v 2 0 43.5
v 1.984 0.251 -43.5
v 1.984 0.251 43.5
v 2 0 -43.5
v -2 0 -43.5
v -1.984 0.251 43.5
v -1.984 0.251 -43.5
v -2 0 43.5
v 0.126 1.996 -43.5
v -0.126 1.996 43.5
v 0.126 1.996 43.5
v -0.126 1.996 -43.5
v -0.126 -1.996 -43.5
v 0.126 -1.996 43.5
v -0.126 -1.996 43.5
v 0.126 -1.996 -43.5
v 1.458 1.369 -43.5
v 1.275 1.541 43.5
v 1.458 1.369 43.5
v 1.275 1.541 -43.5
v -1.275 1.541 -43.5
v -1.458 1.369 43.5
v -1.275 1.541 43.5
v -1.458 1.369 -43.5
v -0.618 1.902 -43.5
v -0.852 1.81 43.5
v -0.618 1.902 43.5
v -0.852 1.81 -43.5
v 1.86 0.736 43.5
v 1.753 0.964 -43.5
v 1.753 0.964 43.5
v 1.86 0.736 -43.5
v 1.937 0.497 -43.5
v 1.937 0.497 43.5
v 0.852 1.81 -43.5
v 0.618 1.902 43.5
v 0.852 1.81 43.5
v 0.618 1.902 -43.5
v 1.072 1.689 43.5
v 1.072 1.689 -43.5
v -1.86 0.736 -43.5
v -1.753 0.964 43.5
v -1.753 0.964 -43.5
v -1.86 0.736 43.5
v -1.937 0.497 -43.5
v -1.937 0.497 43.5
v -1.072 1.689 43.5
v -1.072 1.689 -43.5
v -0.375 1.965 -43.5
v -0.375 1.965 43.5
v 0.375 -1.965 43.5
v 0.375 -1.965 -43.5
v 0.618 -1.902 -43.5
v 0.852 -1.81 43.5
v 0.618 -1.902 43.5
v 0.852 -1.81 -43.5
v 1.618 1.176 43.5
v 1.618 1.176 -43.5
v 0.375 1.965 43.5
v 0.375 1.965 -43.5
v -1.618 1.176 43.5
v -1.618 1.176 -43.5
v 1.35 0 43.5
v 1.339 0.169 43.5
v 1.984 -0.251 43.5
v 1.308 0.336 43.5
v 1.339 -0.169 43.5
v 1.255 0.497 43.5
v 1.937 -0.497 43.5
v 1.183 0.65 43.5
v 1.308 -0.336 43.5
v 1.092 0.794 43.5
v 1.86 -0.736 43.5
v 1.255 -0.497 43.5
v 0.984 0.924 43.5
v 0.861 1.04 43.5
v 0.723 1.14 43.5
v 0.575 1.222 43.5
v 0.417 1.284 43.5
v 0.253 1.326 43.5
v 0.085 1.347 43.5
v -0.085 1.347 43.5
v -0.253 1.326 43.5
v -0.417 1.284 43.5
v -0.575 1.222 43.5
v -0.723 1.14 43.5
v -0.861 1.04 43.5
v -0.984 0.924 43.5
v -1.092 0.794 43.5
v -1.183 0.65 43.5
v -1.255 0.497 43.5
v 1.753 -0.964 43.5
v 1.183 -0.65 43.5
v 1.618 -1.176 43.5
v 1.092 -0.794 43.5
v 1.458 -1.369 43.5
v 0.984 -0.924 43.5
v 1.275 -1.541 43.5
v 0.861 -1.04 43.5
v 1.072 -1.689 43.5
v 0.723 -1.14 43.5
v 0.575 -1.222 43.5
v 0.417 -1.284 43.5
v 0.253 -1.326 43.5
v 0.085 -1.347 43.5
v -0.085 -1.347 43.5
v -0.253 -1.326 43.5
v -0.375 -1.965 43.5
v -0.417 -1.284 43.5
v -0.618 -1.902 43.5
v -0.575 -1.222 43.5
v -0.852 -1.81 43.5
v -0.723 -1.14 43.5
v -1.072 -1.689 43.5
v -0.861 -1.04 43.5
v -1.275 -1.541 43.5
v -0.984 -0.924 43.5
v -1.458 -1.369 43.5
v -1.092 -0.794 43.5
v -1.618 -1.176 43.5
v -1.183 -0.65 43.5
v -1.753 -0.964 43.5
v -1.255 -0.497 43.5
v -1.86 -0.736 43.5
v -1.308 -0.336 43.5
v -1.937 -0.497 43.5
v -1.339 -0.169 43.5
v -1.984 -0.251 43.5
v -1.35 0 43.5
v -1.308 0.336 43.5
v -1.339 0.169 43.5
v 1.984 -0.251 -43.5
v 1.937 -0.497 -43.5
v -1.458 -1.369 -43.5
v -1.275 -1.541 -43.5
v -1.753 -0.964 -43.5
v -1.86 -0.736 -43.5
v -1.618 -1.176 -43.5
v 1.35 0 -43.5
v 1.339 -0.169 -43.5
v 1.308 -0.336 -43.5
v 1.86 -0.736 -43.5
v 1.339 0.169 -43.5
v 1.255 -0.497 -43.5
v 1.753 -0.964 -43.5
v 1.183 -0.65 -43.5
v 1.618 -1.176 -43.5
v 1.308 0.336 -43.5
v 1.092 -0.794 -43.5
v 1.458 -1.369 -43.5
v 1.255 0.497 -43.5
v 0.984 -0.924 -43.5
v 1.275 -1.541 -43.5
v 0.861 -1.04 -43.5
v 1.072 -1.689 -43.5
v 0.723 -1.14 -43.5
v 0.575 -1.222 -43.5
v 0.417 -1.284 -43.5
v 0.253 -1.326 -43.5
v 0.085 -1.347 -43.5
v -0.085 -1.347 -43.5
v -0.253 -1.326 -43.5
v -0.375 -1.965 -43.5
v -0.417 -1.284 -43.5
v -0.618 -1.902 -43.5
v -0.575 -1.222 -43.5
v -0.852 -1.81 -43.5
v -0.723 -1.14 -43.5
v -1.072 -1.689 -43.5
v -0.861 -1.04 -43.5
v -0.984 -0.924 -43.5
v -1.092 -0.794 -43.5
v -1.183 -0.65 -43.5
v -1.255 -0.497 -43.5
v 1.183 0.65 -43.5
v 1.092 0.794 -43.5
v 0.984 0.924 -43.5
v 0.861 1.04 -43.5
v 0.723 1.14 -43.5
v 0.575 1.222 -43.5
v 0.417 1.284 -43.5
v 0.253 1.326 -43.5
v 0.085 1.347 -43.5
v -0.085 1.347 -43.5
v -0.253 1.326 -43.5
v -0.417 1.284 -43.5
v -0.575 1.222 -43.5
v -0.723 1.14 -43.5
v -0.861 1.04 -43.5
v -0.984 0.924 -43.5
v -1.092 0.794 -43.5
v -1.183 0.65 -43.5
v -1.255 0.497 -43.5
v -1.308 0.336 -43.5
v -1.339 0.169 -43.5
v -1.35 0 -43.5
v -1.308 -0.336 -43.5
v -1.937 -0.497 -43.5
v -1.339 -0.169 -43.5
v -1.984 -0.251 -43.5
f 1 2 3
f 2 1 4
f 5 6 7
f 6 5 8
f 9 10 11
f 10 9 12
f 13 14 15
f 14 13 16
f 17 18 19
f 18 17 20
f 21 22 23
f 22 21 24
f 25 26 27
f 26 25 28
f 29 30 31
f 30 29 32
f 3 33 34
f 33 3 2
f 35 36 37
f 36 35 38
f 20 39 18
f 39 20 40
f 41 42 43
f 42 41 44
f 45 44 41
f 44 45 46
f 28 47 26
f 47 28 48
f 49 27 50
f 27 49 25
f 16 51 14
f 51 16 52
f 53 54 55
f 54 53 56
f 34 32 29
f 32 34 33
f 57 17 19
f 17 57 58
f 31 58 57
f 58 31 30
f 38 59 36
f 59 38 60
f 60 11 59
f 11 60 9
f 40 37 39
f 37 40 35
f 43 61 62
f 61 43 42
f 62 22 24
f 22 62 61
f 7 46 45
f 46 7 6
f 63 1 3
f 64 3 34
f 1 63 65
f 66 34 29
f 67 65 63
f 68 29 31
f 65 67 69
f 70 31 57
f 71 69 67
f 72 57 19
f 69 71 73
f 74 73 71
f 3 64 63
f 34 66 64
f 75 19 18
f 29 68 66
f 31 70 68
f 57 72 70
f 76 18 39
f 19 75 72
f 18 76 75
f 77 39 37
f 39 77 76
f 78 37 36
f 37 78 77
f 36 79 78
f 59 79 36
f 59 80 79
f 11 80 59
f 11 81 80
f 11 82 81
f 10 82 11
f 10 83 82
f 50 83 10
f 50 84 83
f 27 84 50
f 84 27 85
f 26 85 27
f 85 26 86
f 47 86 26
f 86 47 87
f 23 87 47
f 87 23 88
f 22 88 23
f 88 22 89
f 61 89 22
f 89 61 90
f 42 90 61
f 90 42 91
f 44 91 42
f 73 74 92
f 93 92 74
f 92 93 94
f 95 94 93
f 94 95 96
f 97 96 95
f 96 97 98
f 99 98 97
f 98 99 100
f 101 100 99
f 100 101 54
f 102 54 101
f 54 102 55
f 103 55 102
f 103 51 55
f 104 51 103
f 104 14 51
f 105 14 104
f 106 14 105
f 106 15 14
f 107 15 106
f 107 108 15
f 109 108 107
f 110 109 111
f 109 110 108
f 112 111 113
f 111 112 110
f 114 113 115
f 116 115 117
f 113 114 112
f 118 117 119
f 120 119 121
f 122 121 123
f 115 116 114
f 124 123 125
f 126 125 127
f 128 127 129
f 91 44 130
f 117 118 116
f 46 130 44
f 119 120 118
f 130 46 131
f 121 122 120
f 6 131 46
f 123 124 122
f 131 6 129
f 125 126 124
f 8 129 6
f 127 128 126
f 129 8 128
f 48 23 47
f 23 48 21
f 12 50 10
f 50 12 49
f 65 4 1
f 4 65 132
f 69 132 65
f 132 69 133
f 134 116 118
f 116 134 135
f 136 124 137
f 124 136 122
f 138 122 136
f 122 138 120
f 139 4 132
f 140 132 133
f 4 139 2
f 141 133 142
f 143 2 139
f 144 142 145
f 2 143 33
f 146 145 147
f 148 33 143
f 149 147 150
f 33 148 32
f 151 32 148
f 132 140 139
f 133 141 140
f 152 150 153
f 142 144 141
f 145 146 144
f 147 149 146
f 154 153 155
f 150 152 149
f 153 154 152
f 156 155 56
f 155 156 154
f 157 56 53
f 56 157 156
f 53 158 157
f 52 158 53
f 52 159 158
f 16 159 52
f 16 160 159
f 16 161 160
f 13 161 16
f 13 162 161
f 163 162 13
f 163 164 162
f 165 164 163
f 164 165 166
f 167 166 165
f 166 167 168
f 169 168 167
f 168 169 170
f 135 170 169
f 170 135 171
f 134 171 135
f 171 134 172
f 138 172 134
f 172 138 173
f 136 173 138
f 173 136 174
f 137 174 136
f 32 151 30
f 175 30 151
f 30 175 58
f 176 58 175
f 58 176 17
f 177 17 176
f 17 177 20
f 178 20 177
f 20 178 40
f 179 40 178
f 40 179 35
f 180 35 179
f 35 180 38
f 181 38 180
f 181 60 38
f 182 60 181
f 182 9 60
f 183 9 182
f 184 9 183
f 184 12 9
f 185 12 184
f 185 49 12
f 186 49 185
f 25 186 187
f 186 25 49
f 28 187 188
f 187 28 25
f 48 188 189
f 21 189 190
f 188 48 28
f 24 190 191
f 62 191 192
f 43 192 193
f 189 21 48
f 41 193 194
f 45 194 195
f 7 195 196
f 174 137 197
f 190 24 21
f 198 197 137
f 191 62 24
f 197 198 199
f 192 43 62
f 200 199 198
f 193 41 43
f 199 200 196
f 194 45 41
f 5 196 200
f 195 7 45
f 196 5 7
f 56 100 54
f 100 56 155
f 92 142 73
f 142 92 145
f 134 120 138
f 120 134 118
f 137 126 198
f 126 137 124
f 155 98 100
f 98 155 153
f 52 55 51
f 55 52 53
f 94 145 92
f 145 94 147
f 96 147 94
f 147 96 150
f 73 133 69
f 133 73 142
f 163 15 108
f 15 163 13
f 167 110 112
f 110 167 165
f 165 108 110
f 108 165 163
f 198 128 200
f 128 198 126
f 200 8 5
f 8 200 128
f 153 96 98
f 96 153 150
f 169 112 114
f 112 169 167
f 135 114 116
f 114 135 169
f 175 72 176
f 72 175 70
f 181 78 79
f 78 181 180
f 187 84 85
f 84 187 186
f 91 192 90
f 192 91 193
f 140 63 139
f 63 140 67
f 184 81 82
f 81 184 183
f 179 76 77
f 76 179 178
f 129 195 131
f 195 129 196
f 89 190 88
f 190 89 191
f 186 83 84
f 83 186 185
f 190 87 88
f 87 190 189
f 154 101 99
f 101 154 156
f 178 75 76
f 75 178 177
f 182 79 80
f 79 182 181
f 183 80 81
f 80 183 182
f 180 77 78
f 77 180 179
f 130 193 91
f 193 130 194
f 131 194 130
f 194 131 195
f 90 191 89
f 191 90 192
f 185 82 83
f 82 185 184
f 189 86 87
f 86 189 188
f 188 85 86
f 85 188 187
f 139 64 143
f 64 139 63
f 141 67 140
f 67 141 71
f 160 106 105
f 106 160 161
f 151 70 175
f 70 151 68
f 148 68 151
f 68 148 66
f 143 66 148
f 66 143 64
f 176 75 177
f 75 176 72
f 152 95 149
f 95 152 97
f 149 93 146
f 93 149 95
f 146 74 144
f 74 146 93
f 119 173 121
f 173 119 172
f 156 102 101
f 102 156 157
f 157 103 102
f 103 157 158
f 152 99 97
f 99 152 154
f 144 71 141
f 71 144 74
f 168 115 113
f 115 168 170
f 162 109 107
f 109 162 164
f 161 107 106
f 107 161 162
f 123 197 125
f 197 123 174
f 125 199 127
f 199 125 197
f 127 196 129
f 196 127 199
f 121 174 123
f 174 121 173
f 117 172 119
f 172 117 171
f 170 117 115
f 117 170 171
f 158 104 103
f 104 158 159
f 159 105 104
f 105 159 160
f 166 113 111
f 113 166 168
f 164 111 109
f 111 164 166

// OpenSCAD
$fn = 50;


difference() {
	union() {
		translate(v = [0, 0, -43.5000000000]) {
			cylinder(h = 87, r = 2.0000000000);
		}
	}
	union() {
		translate(v = [0, 0, -100.0000000000]) {
			cylinder(h = 200, r = 1.3500000000);
		}
	}
}
